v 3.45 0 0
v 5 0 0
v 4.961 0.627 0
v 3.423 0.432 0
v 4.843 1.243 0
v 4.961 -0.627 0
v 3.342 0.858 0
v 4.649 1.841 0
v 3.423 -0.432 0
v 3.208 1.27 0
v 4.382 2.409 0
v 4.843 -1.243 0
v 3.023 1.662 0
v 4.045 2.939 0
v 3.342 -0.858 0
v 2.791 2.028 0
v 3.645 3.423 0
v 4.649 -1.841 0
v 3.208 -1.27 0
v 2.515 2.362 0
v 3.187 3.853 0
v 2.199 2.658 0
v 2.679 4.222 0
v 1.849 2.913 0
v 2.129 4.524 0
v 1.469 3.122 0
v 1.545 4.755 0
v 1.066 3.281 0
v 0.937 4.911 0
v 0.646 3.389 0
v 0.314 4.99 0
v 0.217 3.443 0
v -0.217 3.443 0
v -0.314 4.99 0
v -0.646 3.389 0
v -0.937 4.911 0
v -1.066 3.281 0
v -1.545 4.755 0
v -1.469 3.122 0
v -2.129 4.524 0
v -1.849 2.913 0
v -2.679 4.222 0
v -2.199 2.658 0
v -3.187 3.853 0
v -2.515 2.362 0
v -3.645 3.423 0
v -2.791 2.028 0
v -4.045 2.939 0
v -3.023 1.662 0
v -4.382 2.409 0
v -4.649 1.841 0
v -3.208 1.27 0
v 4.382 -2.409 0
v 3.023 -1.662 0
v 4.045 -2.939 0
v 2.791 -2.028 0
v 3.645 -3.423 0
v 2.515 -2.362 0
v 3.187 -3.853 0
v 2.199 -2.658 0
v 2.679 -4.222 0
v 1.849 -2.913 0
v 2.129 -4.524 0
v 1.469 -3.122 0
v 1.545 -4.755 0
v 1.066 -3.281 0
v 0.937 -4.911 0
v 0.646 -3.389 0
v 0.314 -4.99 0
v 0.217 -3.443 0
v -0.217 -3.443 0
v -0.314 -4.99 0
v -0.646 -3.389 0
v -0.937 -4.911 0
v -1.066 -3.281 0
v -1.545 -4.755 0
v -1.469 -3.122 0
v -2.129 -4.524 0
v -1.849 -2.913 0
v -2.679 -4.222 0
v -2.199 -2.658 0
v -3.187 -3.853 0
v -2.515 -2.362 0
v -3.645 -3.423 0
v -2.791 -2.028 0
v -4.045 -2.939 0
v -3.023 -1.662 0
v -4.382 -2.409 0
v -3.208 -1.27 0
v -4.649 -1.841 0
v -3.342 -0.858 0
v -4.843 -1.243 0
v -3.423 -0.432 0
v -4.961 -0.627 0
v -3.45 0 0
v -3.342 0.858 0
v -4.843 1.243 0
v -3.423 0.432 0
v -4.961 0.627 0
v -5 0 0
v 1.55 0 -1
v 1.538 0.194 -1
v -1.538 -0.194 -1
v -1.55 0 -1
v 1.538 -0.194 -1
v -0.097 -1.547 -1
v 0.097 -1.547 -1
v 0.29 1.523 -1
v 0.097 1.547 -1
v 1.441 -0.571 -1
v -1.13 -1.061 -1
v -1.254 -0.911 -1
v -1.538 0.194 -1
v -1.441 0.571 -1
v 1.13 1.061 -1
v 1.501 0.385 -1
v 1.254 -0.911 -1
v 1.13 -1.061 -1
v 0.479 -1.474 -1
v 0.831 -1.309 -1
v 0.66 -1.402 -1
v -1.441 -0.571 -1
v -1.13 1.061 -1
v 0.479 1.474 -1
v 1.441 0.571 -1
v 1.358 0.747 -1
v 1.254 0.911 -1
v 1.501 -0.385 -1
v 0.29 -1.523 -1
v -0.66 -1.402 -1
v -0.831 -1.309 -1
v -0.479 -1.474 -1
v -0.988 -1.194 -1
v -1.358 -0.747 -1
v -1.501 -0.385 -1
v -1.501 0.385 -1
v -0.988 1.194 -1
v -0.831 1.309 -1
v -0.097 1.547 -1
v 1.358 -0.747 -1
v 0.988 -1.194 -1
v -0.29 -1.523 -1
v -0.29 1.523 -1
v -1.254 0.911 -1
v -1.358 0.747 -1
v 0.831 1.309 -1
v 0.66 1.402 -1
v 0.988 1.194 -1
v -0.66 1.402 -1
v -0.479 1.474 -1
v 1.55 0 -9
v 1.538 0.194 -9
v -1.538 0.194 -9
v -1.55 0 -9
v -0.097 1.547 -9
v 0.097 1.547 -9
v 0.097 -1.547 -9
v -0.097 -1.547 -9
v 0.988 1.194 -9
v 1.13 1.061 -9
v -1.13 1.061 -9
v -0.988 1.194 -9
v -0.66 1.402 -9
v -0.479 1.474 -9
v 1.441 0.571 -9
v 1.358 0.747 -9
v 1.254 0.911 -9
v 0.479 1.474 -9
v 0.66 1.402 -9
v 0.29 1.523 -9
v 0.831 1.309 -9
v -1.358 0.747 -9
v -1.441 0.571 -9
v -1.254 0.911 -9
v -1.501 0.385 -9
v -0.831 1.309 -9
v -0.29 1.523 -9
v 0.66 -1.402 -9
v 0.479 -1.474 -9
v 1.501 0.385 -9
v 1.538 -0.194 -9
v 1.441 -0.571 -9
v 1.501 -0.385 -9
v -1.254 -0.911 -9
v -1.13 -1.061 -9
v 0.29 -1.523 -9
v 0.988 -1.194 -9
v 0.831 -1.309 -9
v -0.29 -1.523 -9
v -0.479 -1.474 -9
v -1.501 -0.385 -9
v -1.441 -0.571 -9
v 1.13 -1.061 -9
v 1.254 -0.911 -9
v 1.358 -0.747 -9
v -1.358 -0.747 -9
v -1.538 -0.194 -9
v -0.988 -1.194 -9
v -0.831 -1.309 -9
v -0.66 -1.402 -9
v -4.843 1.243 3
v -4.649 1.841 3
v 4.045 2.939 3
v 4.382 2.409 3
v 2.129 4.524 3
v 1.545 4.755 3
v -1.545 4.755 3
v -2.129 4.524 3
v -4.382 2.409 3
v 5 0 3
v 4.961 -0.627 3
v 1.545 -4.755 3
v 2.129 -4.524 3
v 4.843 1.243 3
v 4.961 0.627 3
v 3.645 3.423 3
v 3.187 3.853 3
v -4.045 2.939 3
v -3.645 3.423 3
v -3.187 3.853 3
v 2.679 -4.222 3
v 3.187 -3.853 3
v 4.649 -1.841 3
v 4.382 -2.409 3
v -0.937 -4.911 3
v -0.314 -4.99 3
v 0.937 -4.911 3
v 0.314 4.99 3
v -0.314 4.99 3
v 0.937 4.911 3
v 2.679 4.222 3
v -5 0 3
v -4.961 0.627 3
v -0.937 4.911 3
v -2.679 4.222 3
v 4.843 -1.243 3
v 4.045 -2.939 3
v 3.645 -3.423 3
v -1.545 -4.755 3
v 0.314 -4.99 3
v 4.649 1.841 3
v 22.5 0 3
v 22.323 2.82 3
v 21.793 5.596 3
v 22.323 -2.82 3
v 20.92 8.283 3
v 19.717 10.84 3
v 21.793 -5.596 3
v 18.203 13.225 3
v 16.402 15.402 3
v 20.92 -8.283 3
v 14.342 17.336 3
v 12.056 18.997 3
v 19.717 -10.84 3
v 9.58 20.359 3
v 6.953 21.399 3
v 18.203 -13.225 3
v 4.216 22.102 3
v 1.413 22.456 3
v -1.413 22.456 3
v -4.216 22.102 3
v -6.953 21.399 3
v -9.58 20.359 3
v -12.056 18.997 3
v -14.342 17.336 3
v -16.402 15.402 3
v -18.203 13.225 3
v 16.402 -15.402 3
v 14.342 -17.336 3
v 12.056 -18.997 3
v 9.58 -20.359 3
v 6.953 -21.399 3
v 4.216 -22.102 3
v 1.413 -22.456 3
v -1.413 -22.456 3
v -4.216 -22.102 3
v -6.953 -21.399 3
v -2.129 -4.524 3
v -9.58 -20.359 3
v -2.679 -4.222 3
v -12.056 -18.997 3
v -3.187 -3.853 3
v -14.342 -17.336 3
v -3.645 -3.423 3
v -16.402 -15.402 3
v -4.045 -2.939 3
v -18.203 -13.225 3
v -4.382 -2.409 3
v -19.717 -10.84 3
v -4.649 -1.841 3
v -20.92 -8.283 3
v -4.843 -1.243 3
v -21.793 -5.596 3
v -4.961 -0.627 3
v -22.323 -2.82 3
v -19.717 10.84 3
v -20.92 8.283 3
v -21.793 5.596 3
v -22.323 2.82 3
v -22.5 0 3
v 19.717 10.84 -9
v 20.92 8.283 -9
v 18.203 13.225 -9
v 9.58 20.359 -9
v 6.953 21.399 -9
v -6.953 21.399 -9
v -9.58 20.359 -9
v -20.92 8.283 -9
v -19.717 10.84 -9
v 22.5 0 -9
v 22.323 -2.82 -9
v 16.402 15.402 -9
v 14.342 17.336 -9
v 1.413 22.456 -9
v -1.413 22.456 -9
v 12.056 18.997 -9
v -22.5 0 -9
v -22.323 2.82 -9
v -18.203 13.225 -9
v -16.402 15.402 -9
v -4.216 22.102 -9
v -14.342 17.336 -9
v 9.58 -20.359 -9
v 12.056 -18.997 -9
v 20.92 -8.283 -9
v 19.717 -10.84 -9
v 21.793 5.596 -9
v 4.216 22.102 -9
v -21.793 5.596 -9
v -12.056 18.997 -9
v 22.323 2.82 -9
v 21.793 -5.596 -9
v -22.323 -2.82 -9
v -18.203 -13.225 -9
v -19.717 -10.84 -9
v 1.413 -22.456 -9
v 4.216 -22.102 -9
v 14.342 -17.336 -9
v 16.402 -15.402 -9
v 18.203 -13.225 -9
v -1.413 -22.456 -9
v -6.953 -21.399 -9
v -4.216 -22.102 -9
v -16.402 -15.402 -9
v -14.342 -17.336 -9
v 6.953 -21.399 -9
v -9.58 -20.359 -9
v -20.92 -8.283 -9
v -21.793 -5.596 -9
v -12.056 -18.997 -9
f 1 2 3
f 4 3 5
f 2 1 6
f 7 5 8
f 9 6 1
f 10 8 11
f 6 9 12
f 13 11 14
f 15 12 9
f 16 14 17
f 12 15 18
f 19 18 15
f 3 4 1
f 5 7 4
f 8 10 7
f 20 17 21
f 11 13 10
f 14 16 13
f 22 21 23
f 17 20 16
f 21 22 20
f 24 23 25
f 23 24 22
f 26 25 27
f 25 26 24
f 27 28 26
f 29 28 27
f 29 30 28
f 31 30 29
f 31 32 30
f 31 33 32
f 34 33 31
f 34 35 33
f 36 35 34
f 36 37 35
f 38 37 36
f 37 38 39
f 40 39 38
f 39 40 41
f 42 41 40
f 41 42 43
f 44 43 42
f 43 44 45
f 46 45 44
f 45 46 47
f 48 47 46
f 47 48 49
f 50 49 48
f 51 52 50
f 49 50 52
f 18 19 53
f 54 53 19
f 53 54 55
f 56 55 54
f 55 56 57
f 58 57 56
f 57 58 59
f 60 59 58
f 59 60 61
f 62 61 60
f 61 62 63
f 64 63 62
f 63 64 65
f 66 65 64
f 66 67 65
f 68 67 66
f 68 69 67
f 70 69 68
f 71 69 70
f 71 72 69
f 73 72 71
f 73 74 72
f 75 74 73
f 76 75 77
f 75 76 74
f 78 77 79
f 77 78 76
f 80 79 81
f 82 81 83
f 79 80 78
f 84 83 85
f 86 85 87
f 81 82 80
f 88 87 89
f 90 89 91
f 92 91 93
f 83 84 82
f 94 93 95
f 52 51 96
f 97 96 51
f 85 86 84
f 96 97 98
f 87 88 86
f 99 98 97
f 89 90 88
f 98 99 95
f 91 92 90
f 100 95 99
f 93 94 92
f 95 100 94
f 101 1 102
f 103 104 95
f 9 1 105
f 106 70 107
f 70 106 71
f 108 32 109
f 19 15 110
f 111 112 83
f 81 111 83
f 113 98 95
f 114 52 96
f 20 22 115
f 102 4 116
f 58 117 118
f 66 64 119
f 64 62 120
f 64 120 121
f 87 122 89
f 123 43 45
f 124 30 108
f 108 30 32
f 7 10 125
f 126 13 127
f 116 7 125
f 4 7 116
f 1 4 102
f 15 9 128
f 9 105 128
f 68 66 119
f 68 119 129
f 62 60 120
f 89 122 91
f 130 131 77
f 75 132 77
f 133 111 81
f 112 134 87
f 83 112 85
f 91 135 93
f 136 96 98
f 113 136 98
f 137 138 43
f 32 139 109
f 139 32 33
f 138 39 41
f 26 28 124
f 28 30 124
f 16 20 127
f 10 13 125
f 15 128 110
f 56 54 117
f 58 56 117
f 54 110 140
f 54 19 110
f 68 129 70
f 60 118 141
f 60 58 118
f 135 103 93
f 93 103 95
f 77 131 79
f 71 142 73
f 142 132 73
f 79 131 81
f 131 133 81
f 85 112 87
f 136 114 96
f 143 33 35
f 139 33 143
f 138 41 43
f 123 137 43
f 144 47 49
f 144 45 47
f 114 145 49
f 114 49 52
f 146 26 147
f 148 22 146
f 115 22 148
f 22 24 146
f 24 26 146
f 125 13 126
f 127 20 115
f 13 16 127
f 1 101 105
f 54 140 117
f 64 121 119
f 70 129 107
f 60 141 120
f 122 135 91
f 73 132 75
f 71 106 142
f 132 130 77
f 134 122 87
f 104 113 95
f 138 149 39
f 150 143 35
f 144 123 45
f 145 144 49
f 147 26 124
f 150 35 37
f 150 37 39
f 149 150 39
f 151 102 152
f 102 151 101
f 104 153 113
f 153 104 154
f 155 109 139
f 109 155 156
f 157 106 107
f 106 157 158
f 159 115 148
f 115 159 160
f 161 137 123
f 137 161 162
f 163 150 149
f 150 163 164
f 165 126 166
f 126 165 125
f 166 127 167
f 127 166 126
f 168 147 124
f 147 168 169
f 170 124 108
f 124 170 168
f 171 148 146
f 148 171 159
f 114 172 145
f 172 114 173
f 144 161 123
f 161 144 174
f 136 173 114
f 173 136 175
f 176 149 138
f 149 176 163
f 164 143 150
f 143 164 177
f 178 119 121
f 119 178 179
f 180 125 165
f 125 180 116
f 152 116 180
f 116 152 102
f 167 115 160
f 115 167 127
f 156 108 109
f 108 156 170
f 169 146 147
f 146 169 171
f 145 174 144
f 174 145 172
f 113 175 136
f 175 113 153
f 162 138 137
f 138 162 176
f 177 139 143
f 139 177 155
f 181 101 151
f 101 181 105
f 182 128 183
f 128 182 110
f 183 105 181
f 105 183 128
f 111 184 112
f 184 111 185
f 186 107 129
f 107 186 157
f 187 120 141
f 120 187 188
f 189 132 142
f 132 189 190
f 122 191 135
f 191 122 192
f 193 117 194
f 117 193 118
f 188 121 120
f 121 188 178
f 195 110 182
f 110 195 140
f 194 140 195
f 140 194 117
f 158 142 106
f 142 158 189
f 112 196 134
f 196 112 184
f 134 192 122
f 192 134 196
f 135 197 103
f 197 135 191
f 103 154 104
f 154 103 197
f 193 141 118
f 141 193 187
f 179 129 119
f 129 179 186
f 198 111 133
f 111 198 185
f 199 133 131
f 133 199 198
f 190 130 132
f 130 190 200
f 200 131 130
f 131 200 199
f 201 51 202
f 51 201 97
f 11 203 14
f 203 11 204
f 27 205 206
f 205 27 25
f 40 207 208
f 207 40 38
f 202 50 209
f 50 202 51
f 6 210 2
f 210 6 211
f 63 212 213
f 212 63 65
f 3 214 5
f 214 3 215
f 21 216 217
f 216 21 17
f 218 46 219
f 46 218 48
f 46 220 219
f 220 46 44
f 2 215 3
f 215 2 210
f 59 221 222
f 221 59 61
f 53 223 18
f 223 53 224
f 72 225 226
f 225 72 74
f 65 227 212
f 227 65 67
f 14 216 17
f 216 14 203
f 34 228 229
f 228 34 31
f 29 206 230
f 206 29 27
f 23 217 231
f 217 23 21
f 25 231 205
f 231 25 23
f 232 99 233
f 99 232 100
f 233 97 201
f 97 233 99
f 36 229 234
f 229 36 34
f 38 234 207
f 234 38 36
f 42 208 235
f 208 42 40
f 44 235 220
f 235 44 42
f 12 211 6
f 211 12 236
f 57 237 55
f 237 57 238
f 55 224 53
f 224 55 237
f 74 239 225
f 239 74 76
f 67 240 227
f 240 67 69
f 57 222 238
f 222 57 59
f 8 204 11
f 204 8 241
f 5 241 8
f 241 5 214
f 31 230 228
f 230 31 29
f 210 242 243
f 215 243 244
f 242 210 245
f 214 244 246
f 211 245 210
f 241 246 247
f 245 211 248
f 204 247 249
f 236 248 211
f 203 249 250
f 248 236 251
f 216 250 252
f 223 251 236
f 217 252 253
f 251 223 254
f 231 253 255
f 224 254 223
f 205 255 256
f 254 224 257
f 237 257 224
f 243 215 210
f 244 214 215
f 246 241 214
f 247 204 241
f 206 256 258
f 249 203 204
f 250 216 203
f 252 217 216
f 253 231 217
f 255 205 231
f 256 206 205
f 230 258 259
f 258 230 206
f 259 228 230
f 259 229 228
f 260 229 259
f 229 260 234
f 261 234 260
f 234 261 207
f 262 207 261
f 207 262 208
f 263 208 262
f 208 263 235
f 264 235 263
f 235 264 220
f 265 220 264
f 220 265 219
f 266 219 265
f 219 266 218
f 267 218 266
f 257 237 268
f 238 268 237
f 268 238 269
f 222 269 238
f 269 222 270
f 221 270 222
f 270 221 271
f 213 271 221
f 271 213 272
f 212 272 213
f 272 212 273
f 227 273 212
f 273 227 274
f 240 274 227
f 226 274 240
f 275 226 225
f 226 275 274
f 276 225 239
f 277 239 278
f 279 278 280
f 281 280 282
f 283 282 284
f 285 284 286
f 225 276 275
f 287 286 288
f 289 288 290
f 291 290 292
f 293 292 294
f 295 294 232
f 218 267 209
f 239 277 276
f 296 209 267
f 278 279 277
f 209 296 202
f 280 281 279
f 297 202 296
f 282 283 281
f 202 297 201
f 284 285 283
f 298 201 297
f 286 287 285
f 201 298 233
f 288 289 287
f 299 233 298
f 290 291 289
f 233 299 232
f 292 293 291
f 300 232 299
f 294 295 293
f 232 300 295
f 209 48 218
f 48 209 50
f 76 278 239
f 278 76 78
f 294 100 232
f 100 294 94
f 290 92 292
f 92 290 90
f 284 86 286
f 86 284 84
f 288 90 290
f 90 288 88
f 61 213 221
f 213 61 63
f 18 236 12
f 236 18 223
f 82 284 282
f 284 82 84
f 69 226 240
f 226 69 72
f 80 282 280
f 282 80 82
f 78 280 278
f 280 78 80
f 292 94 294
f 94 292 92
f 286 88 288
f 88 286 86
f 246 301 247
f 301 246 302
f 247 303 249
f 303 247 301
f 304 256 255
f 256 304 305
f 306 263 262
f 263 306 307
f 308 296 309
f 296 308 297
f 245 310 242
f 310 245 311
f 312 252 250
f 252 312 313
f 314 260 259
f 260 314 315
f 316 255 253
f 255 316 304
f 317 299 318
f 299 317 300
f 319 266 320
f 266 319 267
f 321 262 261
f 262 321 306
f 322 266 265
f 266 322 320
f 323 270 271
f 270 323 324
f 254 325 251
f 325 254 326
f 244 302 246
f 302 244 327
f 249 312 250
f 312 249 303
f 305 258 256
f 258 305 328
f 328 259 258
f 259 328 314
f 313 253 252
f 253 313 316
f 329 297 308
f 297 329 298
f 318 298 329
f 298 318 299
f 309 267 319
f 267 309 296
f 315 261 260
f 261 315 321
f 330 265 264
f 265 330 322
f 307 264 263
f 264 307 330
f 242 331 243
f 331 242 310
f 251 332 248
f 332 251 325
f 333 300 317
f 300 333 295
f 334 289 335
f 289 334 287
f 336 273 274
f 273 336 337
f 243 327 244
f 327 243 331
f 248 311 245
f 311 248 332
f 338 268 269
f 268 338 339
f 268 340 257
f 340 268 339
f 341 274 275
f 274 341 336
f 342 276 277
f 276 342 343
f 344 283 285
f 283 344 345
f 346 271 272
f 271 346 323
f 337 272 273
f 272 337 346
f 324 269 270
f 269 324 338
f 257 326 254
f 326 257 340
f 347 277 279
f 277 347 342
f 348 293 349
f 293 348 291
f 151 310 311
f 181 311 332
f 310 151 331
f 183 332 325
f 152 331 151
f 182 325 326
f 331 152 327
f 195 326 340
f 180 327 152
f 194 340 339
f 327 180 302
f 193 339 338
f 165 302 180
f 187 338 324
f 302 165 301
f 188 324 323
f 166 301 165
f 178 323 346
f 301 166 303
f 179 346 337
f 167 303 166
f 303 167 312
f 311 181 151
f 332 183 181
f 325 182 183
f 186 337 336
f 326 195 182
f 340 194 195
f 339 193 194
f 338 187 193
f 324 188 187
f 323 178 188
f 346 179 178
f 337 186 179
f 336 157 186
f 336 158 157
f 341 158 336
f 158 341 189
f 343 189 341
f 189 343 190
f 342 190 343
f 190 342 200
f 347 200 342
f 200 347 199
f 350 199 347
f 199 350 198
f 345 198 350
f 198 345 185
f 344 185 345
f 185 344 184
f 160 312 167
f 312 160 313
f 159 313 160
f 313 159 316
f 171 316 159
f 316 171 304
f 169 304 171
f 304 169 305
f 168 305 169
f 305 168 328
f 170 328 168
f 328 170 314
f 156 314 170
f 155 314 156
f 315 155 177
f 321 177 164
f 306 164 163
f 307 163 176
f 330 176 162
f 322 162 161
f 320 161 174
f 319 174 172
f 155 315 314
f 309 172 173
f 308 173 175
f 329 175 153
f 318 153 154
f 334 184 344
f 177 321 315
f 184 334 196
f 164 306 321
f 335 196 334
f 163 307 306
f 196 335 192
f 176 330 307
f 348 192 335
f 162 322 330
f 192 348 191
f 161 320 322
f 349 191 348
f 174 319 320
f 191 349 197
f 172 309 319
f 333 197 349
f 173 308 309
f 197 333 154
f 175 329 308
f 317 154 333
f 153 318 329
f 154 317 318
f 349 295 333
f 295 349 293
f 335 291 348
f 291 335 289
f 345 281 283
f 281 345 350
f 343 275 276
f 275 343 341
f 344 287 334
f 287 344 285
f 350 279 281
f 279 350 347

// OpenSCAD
$fn = 50;


difference() {
	union() {
		translate(v = [0, 0, -9.0000000000]) {
			cylinder(h = 12, r = 22.5000000000);
		}
	}
	union() {
		translate(v = [0, 0, 0]) {
			rotate(a = [0, 0, 0]) {
				difference() {
					union() {
						translate(v = [0, 0, -12.0000000000]) {
							cylinder(h = 12, r = 1.2500000000);
						}
						translate(v = [0, 0, -1.0000000000]) {
							cylinder(h = 1.0000000000, r1 = 1.5500000000, r2 = 3.4500000000);
						}
						translate(v = [0, 0, -12.0000000000]) {
							cylinder(h = 12, r = 1.5500000000);
						}
						translate(v = [0, 0, -12.0000000000]) {
							cylinder(h = 12, r = 1.2500000000);
						}
					}
					union();
				}
			}
		}
		#cylinder(h = 3, r = 5.0000000000);
	}
}
